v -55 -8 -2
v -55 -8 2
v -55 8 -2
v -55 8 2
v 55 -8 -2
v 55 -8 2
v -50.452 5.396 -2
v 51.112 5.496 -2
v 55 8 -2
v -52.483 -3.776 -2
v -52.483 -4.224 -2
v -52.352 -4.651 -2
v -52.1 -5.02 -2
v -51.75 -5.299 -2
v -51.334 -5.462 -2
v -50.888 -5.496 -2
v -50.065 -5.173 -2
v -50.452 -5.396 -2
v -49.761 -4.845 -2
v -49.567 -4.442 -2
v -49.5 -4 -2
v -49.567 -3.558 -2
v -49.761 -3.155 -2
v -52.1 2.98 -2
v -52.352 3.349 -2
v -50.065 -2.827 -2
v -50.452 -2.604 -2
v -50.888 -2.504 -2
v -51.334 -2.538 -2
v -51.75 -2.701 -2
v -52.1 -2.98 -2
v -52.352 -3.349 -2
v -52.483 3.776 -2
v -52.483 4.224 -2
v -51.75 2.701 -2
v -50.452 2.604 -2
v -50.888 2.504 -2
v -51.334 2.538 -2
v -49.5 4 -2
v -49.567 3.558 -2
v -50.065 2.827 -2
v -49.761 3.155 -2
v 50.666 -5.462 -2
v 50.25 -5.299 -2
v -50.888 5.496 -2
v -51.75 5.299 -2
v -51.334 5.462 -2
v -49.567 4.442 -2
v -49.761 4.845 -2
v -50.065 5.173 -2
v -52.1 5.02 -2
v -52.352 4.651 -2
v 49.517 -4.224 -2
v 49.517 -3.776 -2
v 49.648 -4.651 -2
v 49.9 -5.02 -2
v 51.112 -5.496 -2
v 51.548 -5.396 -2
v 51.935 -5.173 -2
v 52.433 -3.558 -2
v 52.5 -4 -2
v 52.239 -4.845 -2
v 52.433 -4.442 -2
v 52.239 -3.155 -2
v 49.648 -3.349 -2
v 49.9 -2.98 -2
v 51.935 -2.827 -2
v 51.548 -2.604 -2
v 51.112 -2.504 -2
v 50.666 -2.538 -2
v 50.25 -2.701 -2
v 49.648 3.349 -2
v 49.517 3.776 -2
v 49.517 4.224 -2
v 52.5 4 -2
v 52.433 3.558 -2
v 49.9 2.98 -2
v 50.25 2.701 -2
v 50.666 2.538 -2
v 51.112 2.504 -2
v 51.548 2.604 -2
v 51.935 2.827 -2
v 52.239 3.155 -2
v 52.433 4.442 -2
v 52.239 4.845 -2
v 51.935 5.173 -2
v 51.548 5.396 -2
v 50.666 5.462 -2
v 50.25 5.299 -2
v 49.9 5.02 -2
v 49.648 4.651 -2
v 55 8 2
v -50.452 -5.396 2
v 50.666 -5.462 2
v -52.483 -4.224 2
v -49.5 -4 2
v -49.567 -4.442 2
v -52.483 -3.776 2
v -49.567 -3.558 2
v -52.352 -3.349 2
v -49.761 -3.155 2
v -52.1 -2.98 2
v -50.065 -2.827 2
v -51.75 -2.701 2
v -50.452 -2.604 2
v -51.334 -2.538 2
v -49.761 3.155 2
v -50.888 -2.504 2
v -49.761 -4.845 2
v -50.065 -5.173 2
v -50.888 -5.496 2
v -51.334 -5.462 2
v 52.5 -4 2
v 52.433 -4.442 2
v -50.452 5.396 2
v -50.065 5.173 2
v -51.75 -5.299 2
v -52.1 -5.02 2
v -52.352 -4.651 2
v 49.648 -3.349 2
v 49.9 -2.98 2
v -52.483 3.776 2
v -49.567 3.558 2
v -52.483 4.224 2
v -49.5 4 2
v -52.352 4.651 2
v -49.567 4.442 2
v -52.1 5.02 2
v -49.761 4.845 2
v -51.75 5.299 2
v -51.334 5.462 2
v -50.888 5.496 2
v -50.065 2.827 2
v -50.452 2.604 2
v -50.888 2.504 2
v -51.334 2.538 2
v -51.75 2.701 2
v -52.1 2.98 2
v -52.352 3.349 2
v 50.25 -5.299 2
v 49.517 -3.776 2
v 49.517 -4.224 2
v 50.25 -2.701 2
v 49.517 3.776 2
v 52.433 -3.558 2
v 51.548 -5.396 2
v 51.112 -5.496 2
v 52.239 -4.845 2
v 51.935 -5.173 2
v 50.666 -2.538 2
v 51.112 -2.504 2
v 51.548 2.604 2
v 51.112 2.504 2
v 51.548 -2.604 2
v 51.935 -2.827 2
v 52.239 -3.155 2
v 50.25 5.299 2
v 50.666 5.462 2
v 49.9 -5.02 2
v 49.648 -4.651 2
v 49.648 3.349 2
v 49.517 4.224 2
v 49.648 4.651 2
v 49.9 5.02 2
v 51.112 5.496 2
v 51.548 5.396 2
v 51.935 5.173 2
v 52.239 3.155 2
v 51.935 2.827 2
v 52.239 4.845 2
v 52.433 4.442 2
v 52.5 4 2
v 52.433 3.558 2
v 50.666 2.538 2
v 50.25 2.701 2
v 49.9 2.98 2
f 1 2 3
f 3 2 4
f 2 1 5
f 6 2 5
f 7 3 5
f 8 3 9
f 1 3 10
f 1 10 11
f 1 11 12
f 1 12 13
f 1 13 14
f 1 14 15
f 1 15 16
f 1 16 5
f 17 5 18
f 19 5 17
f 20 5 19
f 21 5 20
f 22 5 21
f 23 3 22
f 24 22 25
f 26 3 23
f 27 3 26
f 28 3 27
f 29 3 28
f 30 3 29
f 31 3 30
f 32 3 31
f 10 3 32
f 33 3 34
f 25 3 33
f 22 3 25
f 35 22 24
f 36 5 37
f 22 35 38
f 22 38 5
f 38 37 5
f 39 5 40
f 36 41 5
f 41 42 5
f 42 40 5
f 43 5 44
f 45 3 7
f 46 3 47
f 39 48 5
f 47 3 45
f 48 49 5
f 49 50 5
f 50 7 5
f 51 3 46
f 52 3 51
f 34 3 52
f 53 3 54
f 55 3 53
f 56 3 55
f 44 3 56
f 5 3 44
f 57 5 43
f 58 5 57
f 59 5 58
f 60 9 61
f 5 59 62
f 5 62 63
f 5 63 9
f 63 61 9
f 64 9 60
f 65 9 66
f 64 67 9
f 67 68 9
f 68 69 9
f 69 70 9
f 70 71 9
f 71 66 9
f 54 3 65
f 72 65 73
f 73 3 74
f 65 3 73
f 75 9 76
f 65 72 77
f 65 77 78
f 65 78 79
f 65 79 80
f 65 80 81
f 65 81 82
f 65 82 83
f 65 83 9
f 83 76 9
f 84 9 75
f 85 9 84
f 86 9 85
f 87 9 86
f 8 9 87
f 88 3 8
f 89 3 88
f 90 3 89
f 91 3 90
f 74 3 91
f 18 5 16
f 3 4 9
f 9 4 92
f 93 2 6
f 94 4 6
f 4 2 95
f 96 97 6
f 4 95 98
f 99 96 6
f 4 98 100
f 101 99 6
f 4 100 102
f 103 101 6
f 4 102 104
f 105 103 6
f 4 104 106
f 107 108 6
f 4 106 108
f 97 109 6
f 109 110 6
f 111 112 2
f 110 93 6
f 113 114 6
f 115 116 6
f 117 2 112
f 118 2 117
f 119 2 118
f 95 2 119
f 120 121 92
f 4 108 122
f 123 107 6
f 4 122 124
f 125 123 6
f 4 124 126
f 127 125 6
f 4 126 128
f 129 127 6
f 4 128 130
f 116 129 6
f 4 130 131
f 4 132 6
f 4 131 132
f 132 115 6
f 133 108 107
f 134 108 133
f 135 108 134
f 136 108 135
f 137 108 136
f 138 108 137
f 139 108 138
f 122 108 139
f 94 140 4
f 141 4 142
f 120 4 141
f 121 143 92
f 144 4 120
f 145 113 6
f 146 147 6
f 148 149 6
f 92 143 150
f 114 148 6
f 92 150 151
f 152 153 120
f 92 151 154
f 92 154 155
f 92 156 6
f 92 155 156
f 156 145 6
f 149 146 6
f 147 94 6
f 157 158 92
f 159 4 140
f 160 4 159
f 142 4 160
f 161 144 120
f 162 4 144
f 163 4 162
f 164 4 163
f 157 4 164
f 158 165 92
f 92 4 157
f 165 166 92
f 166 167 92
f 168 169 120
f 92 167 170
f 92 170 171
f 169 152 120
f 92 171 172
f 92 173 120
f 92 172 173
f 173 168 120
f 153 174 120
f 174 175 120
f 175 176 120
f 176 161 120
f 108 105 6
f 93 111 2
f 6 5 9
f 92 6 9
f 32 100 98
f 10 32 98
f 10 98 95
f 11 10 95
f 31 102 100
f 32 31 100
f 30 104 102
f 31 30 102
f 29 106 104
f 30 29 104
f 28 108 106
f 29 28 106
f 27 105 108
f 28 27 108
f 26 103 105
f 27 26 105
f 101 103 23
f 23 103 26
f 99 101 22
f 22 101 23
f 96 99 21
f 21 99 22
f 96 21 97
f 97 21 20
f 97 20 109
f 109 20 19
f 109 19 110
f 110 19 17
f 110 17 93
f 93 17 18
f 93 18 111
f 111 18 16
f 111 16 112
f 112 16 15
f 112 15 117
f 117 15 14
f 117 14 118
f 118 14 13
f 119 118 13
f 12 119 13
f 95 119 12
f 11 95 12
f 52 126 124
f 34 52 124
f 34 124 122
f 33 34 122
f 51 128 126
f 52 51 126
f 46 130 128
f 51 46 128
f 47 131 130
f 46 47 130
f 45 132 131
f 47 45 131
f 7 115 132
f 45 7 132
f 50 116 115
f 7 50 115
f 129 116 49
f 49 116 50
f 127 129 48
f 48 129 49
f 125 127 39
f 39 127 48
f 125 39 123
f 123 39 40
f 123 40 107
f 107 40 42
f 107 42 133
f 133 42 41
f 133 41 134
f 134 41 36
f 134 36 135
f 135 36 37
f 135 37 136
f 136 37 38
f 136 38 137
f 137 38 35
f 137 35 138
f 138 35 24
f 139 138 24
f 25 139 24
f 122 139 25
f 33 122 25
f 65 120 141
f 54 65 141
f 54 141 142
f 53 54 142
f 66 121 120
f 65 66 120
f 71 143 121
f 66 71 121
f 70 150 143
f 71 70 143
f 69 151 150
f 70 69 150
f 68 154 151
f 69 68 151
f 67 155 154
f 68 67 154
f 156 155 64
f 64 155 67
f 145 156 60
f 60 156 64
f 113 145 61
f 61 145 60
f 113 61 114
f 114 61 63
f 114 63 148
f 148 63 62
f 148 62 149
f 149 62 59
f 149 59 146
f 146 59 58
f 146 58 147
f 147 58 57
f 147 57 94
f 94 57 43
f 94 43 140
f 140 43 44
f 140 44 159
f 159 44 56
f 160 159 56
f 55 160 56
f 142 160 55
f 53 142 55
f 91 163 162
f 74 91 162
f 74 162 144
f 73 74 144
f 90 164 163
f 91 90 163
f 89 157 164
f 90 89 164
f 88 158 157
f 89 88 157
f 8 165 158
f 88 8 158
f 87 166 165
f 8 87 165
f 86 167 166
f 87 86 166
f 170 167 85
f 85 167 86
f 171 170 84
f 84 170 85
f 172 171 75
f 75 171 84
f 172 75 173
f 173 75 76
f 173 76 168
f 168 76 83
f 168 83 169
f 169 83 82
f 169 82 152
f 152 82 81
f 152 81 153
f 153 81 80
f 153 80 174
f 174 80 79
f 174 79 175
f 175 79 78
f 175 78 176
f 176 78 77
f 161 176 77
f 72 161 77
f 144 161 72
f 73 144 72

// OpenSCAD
$fn = 21;
difference(){
	union(){	
		cube([110,16,4],center=true);
		
	}

	translate([110/2-4,4,0])cylinder(r = 1.5, h = 9,center=true);
	translate([110/2-4,-4,0])cylinder(r = 1.5, h = 9,center=true);
	translate([-110/2+4,4,0])cylinder(r = 1.5, h = 9,center=true);
	translate([-110/2+4,-4,0])cylinder(r = 1.5, h = 9,center=true);


}
